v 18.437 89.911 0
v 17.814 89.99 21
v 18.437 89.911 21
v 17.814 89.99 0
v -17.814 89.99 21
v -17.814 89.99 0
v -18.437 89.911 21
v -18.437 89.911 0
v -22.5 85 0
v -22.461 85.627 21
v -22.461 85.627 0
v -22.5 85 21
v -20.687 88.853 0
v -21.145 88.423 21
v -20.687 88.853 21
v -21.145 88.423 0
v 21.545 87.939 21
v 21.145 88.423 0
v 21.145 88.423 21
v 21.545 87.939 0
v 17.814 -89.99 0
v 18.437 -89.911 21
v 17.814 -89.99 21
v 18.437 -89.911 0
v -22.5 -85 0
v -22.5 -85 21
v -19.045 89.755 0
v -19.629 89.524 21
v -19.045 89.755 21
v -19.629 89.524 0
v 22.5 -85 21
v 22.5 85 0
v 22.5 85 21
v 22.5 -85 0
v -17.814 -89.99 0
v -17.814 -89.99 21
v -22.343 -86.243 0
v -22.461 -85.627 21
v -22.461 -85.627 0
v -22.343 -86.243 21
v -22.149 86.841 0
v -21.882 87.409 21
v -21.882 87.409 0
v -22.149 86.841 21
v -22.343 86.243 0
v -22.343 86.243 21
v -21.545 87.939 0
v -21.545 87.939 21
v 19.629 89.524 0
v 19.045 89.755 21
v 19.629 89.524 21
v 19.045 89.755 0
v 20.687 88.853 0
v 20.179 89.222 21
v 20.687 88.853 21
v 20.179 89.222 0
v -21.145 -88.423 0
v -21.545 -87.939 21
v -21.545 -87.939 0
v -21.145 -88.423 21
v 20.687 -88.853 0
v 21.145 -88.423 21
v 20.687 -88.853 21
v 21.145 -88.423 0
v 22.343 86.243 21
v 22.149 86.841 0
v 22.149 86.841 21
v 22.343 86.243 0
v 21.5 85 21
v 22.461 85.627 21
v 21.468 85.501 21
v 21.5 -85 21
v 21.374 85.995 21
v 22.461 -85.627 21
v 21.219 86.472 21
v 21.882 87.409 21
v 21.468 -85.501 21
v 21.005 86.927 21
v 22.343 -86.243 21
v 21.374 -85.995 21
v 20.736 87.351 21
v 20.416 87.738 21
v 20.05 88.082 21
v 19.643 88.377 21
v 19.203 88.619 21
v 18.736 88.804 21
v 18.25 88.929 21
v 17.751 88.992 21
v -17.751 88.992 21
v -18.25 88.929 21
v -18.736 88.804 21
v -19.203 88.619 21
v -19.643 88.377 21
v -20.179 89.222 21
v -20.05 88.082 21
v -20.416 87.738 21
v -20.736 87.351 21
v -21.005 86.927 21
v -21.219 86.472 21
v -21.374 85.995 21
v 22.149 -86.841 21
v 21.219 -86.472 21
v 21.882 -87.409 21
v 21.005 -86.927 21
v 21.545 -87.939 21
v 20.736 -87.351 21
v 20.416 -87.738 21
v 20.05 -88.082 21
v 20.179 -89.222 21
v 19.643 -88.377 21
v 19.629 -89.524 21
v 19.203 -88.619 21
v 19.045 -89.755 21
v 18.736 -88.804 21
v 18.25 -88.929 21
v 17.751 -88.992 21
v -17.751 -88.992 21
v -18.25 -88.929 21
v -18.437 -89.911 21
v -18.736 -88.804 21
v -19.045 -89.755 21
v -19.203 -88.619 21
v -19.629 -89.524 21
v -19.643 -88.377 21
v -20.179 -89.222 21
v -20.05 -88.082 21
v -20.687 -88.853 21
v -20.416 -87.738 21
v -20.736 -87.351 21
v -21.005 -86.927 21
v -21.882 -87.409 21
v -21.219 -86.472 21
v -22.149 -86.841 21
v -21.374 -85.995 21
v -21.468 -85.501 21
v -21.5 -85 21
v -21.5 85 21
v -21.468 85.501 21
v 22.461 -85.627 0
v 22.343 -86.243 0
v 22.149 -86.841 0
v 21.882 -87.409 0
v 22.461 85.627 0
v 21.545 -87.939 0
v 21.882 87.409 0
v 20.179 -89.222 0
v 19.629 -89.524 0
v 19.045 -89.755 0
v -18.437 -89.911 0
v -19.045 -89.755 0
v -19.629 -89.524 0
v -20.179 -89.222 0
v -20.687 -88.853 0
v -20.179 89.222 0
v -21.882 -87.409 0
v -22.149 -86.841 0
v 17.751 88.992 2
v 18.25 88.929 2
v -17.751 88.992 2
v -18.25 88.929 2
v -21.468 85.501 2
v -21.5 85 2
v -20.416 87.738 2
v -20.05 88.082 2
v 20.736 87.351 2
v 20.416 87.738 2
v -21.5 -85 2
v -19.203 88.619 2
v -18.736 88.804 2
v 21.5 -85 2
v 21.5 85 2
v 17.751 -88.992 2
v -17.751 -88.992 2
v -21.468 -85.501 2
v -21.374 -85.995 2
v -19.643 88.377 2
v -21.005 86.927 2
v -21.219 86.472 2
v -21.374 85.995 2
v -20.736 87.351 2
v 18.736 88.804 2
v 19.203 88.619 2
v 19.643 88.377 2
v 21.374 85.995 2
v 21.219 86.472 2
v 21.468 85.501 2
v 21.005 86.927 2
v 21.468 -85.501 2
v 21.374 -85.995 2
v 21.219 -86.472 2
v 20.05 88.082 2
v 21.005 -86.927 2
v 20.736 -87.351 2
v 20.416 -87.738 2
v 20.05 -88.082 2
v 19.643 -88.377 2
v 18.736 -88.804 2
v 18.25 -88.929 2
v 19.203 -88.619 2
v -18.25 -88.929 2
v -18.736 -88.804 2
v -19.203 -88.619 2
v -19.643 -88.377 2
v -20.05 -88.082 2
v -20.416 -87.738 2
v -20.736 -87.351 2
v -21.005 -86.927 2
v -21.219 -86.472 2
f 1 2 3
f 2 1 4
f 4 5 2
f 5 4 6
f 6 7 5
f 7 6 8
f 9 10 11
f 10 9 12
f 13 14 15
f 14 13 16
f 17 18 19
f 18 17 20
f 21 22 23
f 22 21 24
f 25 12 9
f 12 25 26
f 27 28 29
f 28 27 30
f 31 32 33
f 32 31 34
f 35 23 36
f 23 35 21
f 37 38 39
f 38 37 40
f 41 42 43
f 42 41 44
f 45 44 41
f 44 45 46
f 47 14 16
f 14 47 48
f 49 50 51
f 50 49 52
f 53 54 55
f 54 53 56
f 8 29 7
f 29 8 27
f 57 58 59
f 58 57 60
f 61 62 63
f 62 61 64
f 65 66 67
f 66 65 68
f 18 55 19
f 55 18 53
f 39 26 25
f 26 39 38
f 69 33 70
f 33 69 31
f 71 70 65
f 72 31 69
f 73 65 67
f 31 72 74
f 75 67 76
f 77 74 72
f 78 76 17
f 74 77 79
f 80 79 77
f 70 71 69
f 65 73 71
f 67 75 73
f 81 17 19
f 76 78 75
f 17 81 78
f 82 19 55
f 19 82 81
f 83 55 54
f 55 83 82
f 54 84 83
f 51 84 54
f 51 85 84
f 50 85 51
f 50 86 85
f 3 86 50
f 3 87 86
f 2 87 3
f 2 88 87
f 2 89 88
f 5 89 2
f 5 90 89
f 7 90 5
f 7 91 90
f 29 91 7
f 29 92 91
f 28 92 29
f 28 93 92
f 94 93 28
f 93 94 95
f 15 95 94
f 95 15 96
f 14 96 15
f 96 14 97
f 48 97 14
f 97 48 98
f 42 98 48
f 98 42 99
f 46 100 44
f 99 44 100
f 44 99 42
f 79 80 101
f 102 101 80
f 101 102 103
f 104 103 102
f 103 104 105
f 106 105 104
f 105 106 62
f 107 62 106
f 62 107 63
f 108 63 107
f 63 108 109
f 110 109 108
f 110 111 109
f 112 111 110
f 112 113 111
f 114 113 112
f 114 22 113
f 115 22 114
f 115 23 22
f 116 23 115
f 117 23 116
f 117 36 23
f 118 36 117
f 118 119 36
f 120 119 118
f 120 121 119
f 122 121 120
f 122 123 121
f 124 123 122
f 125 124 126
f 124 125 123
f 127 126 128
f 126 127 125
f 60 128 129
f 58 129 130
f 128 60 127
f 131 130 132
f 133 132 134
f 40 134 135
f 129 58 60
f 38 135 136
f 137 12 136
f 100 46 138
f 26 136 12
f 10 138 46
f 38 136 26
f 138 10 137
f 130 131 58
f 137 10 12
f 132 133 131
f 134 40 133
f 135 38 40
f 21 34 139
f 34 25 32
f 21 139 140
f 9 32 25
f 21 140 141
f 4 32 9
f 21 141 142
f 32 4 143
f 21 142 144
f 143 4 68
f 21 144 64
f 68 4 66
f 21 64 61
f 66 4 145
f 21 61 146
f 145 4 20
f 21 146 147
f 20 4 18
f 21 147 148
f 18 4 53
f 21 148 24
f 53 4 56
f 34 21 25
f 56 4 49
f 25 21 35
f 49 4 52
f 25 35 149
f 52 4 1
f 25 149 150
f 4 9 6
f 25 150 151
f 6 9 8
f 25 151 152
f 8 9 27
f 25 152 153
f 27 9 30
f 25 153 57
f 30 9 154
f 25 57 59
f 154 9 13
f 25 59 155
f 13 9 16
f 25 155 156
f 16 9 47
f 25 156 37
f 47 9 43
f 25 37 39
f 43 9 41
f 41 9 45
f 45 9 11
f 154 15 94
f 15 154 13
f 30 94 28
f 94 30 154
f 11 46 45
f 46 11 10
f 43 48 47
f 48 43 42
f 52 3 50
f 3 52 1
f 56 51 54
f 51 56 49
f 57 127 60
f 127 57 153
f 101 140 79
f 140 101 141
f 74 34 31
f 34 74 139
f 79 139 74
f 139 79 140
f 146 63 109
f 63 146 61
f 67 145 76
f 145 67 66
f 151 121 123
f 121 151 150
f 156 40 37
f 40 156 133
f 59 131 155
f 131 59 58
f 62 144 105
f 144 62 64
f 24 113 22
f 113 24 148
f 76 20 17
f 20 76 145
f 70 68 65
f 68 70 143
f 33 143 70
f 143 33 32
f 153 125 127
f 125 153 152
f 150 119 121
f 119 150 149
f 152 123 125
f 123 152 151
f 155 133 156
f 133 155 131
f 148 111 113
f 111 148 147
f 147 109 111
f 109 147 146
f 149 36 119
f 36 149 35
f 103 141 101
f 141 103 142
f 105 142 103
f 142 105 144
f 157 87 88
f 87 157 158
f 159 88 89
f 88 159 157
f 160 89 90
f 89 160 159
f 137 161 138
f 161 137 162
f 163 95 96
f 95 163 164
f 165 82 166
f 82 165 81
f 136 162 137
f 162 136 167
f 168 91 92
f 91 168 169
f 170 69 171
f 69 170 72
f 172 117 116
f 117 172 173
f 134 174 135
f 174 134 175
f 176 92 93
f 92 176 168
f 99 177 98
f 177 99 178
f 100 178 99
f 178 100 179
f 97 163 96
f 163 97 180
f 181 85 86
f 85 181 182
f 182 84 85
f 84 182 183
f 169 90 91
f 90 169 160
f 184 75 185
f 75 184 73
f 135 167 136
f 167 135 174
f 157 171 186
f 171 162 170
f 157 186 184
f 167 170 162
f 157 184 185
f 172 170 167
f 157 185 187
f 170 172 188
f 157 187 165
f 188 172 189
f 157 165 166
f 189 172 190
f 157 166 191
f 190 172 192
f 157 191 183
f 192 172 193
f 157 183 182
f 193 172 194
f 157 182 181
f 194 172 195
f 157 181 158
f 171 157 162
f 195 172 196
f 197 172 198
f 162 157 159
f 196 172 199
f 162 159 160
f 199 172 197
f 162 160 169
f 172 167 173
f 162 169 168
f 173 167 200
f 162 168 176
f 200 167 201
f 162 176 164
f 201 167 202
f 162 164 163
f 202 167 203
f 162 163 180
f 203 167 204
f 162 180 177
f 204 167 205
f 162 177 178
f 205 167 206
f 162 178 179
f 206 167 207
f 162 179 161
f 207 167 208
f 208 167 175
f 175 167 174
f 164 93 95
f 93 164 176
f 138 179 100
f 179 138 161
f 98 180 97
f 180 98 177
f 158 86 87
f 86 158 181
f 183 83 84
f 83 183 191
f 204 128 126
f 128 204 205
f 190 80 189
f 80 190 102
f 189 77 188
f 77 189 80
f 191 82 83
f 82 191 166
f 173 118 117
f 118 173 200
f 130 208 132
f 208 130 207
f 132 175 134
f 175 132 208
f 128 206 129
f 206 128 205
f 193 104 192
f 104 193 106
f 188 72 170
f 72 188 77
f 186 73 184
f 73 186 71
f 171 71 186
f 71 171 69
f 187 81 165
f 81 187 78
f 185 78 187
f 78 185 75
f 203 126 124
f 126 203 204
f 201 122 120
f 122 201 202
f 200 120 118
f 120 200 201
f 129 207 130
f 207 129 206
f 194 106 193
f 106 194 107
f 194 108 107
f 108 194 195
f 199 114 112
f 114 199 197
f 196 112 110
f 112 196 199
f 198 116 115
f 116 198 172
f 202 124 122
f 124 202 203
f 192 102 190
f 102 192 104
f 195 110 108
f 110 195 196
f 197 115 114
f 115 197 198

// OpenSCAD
$fn = 50;


difference() {
	union() {
		hull() {
			translate(v = [-17.5000000000, 85.0000000000, 0]) {
				cylinder(h = 21, r = 5);
			}
			translate(v = [17.5000000000, 85.0000000000, 0]) {
				cylinder(h = 21, r = 5);
			}
			translate(v = [-17.5000000000, -85.0000000000, 0]) {
				cylinder(h = 21, r = 5);
			}
			translate(v = [17.5000000000, -85.0000000000, 0]) {
				cylinder(h = 21, r = 5);
			}
		}
	}
	union() {
		translate(v = [0, 0, 2]) {
			hull() {
				translate(v = [-17.5000000000, 85.0000000000, 0]) {
					cylinder(h = 19, r = 4);
				}
				translate(v = [17.5000000000, 85.0000000000, 0]) {
					cylinder(h = 19, r = 4);
				}
				translate(v = [-17.5000000000, -85.0000000000, 0]) {
					cylinder(h = 19, r = 4);
				}
				translate(v = [17.5000000000, -85.0000000000, 0]) {
					cylinder(h = 19, r = 4);
				}
			}
		}
	}
}
